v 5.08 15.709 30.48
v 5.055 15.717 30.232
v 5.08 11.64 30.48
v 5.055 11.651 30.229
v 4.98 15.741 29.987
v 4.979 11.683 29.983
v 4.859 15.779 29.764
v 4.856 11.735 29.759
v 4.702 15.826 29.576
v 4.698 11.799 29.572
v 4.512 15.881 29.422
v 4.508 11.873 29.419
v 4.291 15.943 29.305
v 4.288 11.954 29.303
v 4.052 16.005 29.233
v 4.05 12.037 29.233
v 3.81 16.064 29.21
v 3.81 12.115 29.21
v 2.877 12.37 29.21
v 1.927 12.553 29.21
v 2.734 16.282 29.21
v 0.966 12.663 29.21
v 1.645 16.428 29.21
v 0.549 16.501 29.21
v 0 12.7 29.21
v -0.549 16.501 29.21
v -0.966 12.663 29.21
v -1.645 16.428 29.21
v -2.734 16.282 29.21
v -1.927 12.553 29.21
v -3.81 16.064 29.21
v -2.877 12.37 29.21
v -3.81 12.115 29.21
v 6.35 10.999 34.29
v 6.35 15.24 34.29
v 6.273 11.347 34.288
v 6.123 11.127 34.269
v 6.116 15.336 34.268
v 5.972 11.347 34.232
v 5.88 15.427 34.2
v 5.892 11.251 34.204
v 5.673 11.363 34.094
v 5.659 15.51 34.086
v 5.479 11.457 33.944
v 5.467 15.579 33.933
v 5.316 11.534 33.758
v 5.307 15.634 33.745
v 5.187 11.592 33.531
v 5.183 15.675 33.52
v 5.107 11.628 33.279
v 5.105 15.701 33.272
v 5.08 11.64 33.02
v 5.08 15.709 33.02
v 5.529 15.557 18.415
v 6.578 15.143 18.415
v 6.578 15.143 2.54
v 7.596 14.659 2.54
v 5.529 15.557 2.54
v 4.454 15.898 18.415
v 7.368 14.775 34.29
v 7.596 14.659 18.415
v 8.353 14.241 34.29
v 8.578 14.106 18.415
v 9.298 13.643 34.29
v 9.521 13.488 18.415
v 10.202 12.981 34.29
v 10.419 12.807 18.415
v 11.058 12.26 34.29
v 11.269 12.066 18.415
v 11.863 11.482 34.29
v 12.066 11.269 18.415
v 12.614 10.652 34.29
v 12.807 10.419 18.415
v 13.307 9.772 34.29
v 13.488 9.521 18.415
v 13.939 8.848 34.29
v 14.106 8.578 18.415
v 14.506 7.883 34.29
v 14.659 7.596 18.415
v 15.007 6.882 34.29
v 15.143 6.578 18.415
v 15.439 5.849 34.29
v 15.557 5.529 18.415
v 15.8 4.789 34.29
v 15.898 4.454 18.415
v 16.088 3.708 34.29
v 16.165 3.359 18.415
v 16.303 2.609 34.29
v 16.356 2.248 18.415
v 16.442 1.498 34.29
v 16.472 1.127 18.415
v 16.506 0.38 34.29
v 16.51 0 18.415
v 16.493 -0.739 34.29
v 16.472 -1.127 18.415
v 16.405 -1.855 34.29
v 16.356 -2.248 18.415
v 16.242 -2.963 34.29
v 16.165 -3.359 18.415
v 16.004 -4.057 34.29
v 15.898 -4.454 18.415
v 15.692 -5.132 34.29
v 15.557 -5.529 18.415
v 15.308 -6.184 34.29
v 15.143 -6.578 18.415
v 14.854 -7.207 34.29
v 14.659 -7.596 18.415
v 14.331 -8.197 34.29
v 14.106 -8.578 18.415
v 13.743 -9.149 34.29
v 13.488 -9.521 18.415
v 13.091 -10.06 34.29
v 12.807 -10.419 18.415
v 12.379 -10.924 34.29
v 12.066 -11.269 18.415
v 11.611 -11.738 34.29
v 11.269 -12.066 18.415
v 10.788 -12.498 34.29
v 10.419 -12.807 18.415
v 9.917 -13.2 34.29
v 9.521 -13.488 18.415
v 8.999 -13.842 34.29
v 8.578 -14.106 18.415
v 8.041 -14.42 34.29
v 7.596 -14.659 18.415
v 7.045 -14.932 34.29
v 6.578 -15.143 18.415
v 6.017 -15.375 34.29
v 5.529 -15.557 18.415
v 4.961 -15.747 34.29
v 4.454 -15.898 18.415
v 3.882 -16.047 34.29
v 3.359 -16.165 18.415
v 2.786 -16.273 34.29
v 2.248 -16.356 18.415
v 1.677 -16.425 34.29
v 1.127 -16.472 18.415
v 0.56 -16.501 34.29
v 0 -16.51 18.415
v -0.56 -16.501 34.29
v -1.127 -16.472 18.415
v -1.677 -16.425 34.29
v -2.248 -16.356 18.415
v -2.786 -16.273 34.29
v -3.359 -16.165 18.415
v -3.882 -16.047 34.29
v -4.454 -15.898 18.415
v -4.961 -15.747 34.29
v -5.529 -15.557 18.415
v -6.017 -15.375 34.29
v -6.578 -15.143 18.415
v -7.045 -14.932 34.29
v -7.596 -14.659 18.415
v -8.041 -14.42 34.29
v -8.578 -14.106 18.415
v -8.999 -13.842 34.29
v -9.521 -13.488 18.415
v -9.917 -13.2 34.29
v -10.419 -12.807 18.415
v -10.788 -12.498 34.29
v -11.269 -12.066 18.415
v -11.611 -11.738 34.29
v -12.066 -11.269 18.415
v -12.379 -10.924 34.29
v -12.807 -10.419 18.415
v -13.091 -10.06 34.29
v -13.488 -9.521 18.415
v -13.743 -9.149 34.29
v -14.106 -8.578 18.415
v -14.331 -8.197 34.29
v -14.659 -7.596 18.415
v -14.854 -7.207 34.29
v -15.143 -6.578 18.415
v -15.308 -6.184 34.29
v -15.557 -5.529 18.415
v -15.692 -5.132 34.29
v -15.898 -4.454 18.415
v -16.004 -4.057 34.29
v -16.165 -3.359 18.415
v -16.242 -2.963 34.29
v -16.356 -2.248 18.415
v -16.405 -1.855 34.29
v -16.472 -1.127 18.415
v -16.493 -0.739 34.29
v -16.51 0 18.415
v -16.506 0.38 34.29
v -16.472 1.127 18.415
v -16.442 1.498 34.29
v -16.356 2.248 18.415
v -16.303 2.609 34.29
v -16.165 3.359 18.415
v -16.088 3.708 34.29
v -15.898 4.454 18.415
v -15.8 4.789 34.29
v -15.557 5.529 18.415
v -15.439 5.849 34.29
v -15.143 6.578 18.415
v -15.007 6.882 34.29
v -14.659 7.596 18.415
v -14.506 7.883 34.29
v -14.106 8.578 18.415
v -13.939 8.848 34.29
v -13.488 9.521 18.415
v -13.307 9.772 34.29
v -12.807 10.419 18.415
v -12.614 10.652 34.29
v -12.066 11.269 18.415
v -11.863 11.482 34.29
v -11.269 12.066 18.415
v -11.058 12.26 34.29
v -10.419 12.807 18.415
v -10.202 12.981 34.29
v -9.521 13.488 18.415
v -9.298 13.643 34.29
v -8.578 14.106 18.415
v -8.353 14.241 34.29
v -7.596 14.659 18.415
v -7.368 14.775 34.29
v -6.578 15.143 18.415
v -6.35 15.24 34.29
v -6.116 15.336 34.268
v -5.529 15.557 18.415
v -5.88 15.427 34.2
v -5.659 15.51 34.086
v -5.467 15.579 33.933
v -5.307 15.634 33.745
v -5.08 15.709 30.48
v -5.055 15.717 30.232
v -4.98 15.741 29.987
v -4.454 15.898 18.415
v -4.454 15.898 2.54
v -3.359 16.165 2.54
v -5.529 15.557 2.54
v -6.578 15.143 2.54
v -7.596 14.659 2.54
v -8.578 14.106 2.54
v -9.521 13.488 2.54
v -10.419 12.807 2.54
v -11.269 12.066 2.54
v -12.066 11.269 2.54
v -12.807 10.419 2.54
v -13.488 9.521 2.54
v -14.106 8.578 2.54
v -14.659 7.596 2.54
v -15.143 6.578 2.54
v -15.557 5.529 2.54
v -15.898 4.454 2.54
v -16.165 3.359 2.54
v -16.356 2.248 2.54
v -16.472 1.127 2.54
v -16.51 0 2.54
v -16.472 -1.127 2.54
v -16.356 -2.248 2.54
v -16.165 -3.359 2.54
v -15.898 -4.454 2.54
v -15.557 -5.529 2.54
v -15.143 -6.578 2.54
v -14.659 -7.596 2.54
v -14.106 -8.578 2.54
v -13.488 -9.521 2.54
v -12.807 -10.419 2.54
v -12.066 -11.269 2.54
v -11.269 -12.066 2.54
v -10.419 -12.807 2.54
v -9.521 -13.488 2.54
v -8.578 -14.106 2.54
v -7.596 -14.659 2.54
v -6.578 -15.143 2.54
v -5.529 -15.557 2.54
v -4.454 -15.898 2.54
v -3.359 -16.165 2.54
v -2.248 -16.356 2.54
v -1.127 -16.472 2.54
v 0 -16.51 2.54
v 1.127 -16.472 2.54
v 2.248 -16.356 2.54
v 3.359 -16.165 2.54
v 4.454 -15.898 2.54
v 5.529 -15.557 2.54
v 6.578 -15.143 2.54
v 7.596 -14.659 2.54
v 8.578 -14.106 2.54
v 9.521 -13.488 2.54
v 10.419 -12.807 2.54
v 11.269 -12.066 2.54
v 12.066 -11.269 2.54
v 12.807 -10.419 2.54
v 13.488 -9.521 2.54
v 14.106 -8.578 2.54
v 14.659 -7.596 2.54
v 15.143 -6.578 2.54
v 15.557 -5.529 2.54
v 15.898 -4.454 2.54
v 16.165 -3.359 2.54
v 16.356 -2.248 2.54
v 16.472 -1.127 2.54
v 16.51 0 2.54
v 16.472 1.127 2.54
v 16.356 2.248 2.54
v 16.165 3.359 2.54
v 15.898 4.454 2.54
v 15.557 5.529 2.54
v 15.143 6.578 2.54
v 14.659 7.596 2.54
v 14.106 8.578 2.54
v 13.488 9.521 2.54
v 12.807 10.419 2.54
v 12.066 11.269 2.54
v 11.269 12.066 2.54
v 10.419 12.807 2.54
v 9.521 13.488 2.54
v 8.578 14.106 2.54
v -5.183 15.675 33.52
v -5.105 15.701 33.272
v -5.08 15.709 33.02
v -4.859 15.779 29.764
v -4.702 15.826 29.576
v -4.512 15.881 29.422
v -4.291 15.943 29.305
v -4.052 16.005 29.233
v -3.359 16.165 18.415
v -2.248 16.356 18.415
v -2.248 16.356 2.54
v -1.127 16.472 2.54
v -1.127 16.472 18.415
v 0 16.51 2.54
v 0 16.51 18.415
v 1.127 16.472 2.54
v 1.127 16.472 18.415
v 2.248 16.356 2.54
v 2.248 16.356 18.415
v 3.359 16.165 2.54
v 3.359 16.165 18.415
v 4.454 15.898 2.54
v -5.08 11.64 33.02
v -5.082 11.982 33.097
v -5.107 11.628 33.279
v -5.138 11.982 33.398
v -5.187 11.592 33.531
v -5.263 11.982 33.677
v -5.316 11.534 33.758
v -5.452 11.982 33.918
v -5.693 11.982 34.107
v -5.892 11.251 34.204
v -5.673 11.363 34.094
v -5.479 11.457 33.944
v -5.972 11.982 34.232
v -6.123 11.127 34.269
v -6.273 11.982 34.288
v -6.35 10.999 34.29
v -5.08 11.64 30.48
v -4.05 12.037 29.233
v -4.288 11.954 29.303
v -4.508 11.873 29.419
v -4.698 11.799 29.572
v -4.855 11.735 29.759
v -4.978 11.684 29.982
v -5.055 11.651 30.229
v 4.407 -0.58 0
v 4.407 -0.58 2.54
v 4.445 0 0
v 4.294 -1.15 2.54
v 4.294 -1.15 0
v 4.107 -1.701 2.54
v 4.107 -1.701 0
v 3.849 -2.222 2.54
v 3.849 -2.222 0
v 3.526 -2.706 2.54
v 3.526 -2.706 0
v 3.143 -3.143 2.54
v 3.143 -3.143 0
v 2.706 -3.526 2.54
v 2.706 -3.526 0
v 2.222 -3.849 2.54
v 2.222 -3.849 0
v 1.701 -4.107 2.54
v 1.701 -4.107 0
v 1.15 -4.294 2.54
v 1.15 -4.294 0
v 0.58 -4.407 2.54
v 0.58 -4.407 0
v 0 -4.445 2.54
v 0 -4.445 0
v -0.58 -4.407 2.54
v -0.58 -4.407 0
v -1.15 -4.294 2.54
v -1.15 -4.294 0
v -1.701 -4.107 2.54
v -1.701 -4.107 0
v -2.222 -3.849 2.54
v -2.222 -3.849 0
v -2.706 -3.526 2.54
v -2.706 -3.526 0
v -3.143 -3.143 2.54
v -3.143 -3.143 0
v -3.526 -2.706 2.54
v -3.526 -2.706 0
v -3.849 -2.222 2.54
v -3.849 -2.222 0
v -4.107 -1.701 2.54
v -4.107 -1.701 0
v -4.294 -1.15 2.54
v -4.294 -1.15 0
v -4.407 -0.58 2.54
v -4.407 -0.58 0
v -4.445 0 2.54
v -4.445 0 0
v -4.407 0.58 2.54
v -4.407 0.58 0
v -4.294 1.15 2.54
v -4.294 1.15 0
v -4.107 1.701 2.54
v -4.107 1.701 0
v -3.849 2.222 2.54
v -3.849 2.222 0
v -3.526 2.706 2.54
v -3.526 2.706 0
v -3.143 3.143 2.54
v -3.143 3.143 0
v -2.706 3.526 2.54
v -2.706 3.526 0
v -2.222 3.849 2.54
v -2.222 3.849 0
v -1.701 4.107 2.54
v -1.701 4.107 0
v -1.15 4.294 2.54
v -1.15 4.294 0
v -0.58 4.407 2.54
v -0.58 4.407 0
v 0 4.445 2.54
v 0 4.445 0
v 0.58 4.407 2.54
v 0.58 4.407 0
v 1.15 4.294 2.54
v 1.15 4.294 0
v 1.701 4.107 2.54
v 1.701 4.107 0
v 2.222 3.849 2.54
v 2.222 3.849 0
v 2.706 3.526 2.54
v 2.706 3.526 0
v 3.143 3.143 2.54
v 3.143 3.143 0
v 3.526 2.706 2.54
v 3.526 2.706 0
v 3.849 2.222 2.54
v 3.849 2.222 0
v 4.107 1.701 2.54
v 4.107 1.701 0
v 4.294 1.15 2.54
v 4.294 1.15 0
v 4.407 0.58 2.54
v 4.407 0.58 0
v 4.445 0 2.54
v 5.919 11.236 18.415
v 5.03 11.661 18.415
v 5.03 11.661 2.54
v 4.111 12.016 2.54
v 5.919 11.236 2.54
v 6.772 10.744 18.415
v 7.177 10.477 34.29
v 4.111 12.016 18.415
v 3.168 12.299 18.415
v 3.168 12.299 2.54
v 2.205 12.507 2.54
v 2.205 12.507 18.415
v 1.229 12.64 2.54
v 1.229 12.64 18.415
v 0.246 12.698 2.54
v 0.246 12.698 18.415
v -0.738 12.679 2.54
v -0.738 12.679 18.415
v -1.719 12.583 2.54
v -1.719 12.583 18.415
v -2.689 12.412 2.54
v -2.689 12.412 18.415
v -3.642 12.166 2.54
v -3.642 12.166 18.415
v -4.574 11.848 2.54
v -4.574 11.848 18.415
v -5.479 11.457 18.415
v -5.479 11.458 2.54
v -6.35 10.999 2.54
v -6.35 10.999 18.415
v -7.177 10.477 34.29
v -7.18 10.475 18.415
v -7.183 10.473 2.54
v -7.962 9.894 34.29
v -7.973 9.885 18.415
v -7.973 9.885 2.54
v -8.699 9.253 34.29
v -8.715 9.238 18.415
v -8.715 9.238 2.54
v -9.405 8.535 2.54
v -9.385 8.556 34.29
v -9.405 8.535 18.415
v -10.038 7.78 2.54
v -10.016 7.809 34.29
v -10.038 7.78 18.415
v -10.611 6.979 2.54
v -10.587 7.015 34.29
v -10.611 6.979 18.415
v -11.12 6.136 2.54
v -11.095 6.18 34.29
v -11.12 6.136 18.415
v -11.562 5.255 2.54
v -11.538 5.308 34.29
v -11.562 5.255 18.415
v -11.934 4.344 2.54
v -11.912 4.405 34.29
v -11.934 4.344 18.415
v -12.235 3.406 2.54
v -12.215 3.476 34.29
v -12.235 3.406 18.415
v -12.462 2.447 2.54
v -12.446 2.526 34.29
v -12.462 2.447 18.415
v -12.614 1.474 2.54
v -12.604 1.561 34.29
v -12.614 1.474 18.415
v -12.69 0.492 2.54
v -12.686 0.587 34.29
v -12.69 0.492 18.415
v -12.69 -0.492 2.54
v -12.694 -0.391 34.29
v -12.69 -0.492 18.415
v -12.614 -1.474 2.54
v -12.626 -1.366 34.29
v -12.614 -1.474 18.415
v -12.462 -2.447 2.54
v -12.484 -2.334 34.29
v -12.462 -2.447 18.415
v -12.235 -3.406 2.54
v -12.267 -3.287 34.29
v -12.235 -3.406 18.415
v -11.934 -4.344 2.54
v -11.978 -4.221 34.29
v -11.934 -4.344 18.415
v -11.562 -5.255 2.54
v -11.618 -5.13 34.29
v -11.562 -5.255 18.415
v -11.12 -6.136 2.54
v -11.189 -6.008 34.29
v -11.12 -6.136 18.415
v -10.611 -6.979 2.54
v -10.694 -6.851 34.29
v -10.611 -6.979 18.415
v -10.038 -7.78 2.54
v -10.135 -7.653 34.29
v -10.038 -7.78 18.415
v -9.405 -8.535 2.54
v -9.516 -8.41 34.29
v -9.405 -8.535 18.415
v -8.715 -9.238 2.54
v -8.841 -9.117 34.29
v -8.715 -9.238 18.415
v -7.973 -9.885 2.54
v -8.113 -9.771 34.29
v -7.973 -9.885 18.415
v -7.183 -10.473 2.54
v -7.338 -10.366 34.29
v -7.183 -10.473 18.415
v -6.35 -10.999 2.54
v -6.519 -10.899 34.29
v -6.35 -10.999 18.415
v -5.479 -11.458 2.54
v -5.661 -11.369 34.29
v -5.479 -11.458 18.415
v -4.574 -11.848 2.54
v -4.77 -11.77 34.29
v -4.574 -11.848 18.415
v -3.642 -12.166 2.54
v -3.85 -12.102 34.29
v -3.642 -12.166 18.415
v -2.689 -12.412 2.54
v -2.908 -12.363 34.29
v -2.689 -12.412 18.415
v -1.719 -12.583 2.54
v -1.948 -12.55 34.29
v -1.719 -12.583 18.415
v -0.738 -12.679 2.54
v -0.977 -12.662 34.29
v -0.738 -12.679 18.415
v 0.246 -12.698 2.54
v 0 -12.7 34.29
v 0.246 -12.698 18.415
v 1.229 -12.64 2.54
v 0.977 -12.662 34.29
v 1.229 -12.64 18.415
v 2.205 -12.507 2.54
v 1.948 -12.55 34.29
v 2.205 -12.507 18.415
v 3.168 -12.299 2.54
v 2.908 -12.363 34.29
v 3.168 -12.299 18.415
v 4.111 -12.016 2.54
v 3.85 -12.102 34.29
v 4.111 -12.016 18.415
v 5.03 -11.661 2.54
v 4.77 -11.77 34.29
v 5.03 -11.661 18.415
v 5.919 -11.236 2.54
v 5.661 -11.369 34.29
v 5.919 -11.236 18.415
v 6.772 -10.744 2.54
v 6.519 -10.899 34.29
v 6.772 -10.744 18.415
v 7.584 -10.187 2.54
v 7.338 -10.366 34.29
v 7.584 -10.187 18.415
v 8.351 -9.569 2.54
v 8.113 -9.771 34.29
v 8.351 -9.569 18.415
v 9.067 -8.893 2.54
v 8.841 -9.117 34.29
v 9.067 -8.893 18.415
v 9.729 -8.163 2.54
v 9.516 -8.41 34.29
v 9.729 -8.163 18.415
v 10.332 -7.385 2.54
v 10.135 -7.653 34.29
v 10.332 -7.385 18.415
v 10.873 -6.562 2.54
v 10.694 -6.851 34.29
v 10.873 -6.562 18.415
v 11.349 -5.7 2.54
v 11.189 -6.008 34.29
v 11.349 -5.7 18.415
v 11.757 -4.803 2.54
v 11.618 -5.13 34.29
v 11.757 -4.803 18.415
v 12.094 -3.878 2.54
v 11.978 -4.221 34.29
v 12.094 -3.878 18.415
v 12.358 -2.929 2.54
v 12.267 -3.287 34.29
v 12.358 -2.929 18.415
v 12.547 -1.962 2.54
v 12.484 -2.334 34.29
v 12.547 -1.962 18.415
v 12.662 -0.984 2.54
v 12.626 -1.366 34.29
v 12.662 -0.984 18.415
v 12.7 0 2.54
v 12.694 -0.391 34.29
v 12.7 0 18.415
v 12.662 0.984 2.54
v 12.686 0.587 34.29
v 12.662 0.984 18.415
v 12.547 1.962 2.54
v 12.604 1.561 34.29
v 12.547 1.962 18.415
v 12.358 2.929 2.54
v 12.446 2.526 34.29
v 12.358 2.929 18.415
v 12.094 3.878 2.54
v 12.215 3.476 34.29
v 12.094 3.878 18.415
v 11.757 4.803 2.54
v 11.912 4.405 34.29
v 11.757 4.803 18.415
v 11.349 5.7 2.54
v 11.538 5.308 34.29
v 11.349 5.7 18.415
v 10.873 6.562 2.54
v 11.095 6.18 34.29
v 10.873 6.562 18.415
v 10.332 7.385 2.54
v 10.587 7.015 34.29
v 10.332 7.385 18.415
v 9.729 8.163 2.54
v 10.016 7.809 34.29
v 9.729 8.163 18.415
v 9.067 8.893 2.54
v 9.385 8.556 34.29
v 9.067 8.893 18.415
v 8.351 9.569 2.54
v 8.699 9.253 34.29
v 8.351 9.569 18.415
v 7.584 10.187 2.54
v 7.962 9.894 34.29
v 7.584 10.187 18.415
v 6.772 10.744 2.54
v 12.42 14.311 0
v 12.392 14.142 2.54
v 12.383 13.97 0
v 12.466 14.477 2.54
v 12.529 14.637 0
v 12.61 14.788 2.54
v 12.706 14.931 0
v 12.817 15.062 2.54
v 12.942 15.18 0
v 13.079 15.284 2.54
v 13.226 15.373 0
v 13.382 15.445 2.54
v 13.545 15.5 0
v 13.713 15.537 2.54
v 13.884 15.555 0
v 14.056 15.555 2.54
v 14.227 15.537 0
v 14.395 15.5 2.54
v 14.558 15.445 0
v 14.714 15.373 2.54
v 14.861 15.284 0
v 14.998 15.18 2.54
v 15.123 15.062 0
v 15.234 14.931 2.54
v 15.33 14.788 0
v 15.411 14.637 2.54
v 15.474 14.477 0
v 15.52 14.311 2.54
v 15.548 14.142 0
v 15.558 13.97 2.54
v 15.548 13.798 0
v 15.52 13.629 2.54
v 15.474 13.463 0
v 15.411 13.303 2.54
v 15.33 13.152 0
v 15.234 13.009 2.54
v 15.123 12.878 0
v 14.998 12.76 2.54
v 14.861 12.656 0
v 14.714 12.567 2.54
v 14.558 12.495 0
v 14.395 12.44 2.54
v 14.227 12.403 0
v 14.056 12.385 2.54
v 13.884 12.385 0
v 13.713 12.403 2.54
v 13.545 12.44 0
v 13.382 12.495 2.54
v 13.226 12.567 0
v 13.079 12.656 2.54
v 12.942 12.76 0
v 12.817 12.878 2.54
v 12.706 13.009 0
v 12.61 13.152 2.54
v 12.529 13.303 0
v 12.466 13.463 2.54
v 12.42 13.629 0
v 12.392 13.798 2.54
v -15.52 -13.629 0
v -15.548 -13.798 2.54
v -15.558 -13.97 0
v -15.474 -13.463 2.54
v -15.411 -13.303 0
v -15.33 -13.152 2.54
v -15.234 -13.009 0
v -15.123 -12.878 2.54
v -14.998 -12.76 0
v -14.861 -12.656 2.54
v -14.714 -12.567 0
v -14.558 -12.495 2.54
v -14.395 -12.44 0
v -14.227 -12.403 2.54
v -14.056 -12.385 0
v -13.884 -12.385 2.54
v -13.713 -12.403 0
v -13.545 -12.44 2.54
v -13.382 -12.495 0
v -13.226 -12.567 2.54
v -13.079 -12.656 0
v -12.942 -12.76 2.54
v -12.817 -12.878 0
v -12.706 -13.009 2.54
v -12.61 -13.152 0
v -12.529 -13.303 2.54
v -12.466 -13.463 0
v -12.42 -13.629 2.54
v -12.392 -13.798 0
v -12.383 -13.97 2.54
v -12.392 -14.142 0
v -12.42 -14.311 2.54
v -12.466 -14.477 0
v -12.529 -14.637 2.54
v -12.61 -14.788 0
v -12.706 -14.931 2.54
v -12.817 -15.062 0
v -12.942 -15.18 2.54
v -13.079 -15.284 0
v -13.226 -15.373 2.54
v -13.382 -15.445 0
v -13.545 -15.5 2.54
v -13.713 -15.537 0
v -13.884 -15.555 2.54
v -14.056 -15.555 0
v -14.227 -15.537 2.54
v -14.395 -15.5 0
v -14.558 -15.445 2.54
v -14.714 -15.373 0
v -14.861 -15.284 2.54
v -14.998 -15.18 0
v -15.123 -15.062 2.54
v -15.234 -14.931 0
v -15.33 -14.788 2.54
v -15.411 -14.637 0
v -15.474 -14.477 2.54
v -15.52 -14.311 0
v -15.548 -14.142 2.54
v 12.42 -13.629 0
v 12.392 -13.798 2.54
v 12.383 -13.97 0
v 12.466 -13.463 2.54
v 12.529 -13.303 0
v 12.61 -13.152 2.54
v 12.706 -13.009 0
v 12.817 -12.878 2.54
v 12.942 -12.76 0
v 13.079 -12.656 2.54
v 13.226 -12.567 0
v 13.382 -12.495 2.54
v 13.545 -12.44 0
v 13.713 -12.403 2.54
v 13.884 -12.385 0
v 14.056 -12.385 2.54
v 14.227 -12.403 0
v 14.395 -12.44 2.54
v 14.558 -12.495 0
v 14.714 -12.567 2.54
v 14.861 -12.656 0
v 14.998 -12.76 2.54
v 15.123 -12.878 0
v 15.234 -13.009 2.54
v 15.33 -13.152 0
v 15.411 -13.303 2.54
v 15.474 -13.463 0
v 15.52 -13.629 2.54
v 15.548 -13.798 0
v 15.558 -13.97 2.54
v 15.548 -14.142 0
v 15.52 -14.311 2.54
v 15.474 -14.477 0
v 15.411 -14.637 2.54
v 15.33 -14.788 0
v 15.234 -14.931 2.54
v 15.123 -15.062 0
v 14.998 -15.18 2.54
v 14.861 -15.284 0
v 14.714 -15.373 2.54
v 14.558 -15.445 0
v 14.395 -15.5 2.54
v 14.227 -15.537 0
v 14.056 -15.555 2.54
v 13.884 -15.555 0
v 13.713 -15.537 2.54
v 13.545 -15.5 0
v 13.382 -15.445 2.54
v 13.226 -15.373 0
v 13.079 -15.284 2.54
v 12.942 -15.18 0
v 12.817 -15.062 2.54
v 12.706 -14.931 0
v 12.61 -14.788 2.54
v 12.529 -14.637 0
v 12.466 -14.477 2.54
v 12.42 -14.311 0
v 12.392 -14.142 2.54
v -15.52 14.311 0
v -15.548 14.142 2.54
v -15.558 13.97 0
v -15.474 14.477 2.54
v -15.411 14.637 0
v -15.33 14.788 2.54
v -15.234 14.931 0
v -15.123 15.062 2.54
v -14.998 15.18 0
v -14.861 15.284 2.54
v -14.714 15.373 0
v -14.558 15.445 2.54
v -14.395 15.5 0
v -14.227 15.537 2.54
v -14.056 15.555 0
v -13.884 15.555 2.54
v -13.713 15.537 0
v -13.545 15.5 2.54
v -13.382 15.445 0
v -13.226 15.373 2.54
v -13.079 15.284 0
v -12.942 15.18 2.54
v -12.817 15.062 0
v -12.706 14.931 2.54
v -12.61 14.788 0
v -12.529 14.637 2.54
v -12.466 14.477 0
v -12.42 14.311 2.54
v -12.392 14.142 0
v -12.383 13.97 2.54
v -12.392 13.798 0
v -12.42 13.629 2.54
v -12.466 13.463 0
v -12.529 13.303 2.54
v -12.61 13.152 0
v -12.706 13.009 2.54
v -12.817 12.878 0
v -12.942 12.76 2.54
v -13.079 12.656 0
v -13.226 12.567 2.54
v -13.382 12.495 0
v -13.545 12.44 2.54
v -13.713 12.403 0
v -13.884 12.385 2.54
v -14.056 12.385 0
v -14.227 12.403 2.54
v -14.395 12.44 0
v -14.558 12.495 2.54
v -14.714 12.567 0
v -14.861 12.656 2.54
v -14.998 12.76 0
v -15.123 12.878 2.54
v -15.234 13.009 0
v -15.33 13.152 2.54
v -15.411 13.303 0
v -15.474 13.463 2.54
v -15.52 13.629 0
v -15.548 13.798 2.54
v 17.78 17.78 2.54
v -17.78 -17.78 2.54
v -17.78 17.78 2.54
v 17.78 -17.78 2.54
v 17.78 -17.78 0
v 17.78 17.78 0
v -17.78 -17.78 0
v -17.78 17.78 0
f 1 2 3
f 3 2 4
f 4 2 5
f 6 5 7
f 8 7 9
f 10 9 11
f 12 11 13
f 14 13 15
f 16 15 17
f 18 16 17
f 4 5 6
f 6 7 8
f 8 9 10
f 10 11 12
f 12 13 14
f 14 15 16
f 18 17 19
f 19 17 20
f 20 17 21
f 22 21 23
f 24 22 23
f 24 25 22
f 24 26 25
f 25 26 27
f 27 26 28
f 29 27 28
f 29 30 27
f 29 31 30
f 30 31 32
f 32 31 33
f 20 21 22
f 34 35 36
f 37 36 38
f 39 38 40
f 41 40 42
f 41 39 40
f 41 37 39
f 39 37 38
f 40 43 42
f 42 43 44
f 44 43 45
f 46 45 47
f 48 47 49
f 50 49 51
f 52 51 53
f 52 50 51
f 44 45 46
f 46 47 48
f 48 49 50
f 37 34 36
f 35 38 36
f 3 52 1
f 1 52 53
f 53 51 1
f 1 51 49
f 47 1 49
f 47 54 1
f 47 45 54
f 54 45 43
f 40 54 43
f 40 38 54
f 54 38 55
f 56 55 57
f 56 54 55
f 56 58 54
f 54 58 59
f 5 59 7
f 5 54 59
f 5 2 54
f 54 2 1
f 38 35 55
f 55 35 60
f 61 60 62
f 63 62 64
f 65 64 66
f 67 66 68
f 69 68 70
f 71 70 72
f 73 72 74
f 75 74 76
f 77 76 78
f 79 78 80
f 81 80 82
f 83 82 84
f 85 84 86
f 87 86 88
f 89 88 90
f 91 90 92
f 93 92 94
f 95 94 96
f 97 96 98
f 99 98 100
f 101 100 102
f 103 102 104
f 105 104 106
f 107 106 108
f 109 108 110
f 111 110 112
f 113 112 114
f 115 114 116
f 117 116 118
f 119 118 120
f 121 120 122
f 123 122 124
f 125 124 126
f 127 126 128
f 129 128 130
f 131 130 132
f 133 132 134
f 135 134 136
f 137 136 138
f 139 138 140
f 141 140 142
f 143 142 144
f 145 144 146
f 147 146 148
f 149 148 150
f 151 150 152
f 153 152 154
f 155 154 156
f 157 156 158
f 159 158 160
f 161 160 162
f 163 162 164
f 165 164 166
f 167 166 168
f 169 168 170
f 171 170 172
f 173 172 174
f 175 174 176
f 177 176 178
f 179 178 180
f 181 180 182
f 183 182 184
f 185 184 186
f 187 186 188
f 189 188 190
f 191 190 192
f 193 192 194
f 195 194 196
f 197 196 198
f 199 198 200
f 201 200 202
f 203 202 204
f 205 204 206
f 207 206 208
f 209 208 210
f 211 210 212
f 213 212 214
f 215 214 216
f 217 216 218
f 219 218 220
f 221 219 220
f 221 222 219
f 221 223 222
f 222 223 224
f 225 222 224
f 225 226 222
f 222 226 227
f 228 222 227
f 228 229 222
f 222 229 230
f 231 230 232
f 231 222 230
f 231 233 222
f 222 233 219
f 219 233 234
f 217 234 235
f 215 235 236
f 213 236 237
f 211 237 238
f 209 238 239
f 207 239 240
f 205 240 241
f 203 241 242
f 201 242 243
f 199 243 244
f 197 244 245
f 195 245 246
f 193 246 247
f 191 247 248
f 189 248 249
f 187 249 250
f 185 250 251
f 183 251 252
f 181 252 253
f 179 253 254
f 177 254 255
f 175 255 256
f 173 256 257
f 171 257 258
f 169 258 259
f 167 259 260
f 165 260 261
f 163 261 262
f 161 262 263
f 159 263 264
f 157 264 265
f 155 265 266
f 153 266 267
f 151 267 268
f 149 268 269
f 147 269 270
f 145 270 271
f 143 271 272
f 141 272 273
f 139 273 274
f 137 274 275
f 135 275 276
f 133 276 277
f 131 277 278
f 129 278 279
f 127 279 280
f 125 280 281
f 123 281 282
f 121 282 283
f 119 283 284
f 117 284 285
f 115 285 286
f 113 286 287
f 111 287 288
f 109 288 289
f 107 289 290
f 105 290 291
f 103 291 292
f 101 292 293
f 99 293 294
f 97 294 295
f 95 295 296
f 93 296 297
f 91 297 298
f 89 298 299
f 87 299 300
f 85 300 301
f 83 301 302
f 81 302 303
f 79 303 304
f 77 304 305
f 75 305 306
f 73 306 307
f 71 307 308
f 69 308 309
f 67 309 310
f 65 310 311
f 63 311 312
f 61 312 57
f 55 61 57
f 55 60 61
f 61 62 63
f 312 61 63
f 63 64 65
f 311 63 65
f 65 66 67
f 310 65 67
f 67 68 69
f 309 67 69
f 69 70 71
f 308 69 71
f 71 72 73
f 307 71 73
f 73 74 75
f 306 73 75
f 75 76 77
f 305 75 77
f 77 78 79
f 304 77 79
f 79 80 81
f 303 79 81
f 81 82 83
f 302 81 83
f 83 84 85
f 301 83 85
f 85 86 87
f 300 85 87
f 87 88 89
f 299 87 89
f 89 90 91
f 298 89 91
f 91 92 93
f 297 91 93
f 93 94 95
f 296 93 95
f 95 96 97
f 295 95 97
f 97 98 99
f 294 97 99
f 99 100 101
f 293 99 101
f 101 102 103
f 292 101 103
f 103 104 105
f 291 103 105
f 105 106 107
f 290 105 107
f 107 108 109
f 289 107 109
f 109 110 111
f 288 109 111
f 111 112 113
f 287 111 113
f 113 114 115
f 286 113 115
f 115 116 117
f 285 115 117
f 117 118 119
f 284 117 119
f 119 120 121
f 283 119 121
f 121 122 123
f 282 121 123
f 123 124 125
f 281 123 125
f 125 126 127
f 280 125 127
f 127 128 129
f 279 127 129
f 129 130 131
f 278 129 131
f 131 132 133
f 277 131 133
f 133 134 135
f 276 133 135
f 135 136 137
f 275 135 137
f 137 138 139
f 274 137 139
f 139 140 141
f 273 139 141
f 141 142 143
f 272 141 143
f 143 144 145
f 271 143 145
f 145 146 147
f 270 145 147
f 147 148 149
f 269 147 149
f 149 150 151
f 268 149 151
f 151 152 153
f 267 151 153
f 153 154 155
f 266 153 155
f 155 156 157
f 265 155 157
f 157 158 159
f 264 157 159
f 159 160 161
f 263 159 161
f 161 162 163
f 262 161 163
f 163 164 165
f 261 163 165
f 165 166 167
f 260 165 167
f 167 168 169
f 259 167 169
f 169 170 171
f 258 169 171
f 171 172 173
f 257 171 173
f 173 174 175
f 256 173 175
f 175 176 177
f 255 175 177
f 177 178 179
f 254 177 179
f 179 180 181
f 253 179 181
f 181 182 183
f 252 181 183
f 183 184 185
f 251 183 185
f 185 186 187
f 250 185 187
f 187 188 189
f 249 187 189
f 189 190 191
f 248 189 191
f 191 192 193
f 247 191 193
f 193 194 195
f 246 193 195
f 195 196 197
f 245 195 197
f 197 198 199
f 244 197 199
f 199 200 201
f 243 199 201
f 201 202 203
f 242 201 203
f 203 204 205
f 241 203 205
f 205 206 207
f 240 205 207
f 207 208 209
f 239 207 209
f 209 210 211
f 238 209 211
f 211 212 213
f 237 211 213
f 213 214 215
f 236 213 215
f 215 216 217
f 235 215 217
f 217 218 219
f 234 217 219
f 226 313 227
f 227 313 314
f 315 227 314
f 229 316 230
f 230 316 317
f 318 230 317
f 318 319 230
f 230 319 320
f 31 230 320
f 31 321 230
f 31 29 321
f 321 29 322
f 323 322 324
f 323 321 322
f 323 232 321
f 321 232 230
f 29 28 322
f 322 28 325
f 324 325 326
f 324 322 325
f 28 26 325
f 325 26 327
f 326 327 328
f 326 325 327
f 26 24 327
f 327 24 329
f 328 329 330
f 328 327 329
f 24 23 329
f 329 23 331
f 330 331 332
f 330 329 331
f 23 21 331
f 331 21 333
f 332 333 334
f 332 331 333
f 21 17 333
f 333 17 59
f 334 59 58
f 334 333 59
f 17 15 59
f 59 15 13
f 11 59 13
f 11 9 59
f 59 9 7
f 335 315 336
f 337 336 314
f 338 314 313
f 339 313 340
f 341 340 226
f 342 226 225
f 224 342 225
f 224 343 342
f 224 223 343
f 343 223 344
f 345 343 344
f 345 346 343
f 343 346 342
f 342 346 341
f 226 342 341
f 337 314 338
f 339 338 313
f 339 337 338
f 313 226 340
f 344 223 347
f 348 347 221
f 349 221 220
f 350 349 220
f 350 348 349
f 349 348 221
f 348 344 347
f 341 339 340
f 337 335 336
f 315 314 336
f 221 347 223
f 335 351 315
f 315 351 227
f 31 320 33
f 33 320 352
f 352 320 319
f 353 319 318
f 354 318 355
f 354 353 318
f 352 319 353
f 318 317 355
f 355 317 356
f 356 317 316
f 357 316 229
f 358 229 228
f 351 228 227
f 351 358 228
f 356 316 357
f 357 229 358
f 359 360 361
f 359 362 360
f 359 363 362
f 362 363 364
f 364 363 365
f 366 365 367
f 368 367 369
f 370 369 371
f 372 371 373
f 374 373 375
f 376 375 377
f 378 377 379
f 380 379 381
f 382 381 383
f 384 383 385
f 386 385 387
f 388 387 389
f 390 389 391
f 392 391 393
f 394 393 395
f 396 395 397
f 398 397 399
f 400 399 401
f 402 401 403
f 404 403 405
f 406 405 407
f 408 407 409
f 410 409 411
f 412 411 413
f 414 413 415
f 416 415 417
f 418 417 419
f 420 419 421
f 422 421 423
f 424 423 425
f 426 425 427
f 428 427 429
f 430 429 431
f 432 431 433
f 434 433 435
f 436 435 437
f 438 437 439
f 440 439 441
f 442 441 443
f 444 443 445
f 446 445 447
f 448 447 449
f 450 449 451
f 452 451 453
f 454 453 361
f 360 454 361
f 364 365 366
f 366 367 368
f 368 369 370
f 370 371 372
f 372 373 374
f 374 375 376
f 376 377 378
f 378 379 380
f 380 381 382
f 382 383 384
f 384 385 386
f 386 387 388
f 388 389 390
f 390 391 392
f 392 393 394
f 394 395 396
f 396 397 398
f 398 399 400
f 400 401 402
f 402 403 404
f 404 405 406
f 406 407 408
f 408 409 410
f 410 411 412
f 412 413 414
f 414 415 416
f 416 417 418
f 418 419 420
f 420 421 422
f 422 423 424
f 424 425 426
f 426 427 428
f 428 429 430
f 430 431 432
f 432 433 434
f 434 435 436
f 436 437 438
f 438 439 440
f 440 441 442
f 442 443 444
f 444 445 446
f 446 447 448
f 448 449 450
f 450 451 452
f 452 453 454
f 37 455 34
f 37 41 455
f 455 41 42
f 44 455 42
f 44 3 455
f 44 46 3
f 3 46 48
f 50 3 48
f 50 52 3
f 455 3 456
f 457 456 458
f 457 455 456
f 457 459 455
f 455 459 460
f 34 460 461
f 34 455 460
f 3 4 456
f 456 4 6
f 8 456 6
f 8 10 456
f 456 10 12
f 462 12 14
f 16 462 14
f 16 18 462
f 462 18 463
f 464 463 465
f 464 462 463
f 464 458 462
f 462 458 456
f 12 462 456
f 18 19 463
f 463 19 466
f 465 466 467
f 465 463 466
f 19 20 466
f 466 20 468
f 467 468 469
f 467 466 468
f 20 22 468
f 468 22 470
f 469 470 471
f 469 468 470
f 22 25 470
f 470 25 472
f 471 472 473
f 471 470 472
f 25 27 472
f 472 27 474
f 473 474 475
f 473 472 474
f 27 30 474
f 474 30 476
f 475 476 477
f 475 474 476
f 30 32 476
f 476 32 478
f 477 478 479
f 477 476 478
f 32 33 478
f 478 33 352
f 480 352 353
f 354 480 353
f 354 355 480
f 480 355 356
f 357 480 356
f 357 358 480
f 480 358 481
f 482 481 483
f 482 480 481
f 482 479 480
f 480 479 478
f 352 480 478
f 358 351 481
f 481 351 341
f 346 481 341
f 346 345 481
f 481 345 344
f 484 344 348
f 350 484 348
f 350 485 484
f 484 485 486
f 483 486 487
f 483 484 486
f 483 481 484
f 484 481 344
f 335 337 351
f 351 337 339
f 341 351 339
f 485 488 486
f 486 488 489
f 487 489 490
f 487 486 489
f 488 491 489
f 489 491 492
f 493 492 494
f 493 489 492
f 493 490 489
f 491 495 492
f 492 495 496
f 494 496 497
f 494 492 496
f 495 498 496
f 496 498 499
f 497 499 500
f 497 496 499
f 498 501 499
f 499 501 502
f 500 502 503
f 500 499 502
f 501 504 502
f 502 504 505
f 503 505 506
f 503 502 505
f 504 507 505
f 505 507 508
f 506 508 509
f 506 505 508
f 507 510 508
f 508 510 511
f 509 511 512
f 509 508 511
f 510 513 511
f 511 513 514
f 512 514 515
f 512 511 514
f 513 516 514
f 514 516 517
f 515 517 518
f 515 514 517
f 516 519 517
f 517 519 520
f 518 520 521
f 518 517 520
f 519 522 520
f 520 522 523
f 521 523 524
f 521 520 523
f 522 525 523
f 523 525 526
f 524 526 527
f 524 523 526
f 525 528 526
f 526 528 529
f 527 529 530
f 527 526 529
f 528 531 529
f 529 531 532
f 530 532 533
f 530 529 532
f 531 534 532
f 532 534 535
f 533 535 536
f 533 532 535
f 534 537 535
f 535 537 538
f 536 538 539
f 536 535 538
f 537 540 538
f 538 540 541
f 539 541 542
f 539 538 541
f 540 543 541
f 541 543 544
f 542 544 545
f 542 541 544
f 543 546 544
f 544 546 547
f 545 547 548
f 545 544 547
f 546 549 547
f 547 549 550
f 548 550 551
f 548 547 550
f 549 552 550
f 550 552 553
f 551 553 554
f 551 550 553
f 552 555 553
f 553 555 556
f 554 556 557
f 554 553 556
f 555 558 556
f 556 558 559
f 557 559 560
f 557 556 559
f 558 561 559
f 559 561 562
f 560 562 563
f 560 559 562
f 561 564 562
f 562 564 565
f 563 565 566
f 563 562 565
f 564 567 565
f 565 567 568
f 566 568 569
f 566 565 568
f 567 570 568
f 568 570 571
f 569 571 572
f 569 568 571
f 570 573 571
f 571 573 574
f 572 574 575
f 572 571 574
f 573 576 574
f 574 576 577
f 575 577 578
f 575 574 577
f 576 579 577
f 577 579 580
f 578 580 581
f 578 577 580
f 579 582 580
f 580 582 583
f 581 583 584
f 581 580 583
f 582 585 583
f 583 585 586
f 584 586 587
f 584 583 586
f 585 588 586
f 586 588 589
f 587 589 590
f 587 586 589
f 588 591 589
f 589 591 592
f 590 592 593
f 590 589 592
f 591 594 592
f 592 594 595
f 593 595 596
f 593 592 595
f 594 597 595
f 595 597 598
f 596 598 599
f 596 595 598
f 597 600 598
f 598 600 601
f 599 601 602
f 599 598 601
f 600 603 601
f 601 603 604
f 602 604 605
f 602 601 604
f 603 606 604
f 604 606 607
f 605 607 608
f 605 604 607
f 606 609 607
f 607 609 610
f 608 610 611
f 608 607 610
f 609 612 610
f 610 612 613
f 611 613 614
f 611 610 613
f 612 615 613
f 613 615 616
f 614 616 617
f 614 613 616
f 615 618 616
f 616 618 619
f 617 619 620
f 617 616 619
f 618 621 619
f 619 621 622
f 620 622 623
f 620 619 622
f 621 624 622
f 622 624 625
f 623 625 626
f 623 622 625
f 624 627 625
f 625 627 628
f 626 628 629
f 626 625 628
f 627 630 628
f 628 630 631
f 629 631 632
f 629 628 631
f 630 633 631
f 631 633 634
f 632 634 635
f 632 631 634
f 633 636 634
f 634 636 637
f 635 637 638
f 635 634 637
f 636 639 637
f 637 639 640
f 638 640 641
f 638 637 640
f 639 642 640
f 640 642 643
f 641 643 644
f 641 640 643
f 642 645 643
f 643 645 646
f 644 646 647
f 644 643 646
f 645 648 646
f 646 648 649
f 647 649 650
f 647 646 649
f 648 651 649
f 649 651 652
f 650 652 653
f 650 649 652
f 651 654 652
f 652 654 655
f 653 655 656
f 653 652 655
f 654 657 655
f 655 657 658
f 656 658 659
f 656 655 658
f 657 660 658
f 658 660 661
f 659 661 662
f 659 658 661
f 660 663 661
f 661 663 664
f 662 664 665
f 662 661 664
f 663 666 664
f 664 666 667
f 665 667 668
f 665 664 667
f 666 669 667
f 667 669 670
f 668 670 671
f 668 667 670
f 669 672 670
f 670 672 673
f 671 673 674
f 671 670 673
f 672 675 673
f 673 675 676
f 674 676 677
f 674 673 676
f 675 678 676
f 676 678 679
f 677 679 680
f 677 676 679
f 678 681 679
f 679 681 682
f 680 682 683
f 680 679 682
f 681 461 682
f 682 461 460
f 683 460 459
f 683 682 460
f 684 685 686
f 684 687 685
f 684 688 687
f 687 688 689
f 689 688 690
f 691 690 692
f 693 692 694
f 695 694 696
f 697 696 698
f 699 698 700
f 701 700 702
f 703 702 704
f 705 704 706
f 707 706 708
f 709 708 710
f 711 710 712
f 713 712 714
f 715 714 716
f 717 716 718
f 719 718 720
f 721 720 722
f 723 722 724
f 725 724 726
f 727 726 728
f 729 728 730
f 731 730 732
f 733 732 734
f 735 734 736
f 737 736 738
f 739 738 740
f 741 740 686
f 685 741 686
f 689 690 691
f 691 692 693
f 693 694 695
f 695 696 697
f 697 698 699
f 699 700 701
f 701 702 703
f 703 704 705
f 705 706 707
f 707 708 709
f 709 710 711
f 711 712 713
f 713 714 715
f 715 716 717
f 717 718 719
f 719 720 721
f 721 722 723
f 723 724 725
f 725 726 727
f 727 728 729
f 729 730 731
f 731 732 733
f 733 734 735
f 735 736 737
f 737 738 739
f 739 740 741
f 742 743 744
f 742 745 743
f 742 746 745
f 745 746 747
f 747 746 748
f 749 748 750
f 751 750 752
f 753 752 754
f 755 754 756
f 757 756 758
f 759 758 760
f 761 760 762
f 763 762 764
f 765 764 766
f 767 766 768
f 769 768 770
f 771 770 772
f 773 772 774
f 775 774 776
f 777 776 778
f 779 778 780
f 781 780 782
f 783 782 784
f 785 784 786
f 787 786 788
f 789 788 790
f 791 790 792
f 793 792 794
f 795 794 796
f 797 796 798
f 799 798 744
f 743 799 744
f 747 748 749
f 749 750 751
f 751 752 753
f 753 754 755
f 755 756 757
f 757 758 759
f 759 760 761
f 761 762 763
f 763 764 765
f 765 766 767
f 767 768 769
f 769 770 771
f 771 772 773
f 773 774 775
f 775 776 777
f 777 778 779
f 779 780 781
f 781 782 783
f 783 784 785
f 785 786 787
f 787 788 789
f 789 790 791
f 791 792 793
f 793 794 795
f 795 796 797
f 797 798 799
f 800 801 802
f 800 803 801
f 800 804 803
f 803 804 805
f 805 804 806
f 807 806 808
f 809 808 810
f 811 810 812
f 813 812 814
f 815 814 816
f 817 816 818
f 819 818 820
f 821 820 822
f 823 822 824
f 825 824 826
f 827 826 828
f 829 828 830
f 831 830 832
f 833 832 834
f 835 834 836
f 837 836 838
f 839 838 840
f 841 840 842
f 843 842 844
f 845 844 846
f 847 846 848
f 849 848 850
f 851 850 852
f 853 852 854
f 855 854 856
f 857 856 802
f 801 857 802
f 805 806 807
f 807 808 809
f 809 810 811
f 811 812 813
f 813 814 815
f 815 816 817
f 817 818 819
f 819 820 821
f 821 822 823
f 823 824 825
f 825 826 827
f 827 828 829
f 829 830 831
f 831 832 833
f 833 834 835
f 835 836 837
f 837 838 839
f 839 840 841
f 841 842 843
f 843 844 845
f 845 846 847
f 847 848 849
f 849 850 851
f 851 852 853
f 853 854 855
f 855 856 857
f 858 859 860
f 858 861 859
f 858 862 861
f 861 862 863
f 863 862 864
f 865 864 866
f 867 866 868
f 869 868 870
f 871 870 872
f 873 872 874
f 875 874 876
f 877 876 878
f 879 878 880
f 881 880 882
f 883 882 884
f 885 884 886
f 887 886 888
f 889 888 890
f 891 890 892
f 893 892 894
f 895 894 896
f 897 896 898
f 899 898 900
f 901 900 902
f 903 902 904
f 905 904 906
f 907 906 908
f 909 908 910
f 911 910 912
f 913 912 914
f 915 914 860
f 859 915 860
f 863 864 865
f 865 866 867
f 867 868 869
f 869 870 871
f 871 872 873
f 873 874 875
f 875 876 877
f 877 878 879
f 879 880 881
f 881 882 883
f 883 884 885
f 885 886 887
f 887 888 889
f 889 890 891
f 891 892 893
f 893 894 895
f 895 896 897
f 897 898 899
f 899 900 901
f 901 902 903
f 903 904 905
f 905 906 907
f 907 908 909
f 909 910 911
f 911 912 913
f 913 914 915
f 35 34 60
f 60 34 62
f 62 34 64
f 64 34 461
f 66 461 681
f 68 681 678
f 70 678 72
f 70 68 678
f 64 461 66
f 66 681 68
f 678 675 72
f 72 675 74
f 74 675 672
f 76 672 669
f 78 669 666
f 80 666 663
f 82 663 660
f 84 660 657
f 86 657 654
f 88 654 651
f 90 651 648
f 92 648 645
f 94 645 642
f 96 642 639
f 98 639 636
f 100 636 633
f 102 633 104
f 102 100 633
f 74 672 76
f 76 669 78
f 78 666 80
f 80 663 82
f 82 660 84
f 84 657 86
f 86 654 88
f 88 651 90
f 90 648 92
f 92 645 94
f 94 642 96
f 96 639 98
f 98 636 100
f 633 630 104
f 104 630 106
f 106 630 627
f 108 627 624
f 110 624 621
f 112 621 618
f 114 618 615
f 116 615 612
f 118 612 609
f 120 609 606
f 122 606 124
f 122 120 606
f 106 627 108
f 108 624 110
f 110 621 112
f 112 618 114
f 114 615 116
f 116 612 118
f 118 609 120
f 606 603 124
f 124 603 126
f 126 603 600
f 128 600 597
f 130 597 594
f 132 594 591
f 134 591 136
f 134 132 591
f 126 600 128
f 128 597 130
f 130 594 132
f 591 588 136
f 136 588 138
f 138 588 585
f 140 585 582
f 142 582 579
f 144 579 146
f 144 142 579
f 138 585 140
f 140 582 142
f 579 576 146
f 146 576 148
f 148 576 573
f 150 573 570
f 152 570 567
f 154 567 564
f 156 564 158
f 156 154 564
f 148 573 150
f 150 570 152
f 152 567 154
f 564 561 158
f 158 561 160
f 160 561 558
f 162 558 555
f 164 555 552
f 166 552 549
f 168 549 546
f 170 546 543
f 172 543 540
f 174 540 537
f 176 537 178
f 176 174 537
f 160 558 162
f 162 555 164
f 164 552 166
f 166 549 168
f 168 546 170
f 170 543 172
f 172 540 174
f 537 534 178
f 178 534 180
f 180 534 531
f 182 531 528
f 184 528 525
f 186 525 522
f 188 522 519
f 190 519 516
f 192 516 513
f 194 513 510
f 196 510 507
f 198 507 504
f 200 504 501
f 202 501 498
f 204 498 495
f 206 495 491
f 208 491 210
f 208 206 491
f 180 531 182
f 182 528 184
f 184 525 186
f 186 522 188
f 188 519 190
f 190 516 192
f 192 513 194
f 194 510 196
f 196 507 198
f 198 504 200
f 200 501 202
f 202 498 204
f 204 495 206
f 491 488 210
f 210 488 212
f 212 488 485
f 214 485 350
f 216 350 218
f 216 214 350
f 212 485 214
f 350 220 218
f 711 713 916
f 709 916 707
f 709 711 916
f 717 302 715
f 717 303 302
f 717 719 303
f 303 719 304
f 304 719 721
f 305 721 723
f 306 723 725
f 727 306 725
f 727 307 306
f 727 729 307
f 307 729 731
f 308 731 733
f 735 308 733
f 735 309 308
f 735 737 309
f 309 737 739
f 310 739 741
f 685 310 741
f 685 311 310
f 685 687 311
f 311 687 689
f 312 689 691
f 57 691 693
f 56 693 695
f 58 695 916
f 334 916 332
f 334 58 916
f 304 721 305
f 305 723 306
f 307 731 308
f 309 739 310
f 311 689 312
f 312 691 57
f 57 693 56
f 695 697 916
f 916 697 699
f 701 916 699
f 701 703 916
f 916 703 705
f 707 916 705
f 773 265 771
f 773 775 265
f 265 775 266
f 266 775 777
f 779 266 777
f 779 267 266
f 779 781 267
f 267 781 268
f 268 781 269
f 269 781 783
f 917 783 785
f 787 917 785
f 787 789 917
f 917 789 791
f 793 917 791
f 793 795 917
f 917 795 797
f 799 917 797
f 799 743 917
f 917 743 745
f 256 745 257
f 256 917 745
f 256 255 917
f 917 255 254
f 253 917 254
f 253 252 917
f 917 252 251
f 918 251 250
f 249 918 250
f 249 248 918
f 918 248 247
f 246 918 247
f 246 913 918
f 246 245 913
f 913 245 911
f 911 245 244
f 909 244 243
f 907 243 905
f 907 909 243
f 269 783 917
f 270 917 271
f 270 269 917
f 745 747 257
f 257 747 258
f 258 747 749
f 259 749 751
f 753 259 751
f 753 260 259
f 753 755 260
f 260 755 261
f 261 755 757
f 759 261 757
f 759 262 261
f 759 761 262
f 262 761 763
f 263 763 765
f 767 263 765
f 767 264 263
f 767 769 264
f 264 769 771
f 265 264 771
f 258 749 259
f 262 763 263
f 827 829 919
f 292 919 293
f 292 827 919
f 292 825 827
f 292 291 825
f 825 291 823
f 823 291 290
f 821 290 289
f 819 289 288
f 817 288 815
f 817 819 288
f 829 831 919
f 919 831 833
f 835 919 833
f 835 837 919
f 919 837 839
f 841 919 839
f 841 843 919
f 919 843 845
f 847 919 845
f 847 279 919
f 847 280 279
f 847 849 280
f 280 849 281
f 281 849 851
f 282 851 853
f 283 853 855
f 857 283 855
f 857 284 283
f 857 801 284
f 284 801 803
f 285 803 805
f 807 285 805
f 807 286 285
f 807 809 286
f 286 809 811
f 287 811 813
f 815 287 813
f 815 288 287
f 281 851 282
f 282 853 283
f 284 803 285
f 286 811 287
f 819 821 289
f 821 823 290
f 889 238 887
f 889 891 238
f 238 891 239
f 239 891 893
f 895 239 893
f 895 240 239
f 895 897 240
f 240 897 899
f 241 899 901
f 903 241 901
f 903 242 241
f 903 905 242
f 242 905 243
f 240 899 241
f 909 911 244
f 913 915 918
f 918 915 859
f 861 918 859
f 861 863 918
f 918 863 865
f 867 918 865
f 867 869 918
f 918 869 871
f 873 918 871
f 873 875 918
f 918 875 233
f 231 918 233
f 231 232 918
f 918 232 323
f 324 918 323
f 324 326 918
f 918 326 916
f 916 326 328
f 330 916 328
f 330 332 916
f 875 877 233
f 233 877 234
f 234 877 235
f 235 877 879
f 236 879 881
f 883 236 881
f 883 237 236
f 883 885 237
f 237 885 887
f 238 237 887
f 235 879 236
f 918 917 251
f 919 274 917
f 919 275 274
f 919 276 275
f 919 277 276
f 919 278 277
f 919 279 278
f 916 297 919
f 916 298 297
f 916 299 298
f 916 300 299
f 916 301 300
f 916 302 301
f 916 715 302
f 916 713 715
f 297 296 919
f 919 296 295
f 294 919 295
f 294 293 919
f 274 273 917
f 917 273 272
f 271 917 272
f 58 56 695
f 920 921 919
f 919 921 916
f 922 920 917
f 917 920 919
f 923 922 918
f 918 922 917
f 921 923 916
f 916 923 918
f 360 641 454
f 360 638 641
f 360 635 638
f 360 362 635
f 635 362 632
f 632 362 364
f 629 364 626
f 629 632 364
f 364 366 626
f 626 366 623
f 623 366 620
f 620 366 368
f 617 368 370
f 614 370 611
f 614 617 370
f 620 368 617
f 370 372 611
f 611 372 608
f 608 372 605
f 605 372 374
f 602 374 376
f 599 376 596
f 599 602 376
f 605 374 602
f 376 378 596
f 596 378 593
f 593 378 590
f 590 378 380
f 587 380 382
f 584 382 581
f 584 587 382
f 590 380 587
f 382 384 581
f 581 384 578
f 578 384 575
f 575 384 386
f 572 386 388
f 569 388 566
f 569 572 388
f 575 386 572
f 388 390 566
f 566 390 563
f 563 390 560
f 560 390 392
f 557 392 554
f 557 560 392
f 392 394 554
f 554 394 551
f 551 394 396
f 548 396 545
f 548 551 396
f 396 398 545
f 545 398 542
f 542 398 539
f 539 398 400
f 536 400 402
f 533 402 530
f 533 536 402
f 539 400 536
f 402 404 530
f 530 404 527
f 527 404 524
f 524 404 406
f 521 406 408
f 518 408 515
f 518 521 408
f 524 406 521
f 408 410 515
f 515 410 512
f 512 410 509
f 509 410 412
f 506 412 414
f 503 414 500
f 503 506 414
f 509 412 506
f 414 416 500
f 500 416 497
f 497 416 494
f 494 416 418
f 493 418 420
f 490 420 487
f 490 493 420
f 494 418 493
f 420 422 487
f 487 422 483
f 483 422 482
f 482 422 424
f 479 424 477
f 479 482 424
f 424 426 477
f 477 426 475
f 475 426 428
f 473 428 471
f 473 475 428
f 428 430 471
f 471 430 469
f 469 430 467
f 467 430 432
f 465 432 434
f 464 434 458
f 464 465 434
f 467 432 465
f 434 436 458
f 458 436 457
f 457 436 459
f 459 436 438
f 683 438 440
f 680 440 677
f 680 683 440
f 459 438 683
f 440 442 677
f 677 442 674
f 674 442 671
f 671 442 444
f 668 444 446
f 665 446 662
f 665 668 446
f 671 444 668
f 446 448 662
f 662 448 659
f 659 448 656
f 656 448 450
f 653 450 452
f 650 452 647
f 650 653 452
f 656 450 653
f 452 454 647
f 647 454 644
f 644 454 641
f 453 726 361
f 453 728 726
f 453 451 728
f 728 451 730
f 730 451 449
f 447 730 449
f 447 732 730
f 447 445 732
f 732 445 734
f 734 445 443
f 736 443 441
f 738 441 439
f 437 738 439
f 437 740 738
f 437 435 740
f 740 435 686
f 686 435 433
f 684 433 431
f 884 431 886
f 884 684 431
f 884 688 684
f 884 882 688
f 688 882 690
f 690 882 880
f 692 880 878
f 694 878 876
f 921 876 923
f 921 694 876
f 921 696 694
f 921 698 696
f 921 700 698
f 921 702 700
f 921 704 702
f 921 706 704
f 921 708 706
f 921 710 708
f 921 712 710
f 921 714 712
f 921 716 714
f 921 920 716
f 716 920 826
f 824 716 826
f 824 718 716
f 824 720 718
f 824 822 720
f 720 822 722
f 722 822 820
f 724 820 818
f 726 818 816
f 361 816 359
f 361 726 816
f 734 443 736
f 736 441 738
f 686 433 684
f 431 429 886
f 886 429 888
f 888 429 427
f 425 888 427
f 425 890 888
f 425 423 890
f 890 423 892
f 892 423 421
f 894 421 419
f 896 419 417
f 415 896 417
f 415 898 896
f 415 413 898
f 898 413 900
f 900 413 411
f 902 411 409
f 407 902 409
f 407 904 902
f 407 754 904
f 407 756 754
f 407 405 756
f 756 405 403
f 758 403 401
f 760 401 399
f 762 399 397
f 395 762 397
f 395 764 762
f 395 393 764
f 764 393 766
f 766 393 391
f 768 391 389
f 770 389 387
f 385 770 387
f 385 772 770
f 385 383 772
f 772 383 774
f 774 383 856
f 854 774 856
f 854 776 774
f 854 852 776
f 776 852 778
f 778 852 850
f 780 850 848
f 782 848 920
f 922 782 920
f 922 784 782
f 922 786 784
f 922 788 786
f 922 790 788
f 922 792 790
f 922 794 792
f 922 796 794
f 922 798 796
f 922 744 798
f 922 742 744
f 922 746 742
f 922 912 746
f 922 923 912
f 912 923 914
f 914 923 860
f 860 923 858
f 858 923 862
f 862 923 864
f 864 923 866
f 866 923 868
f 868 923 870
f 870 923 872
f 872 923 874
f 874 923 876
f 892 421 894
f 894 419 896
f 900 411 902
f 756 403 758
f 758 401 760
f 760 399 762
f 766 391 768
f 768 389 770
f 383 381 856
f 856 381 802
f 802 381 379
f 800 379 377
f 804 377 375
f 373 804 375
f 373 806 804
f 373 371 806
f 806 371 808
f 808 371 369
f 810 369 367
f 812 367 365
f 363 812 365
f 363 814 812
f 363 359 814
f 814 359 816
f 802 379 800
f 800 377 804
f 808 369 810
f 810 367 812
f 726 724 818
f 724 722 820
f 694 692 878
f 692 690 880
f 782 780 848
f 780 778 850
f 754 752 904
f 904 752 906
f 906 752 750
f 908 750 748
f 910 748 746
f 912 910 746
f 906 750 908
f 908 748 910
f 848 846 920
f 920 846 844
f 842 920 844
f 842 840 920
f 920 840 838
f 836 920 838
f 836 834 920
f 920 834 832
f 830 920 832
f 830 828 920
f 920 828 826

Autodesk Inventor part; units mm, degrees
ref_plane "YZ Plane" through (0, 0, 0) normal (1, 0, 0) x (0, 1, 0)
ref_plane "XY Plane" through (0, 0, 0) normal (0, 0, 1) x (1, 0, 0)
sketch "Sketch1" plane through (0, 0, 0) normal (0, 0, 1) x (1, 0, 0)
  line L0 (17.78, 17.78) -> (-17.78, 17.78)
  line L1 (-17.78, 17.78) -> (-17.78, -17.78)
  line L2 (-17.78, -17.78) -> (17.78, -17.78)
  line L3 (17.78, -17.78) -> (17.78, 17.78)
  point P0 (0, 0)
  dimension "d0" = 35.56
  dimension "d1" = 35.56
  dimension "d2" = 17.78
  dimension "d3" = 17.78
extrude "Extrusion1" add sketch "Sketch1" along normal blind 2.54
sketch "Sketch2" plane through (0, 0, 2.54) normal (0, 0, 1) x (1, 0, 0)
  circle A0 centre (0, 0) radius 12.7
  circle A1 centre (0, 0) radius 16.51
  dimension "d6" = 25.4
  dimension "d7" = 3.81
extrude "Extrusion2" add sketch "Sketch2" along normal blind 31.75
sketch "Sketch3" plane through (0, 0, 2.54) normal (0, 0, 1) x (1, 0, 0)
  line L0 (17.78, 17.78) -> (-17.78, 17.78) projected
  line L1 (-17.78, 17.78) -> (-17.78, -17.78) projected
  line L2 (17.78, -17.78) -> (17.78, 17.78) projected
  line L3 (-17.78, -17.78) -> (17.78, -17.78) projected
  point P0 (0, 0)
  point P1 (-13.97, -13.97)
  point P2 (13.97, -13.97)
  point P3 (13.97, 13.97)
  point P4 (-13.97, 13.97)
  dimension "d10" = 3.81
  dimension "d11" = 3.81
  dimension "d12" = 3.81
  dimension "d13" = 3.81
  dimension "d14" = 3.81
  dimension "d15" = 3.81
  dimension "d16" = 3.81
  dimension "d17" = 3.81
hole "Hole1" at (-13.97, -13.97, 2.54) at (13.97, -13.97, 2.54) at (13.97, 13.97, 2.54) at (-13.97, 13.97, 2.54) direction (0, 0, -1) diameter 3.175 depth 3.175 tip angle 118
ref_plane "Work Plane1" through (0, 16.51, 0) normal (0, 1, 0) x (-1, 0, 0)
sketch "Sketch4" plane through (0, 16.51, 0) normal (0, 1, 0) x (-1, 0, 0)
  line L0 (-12.7, 34.29) -> (12.7, 34.29) projected
  line L1 (5.08, 34.29) -> (-5.08, 34.29)
  line L2 (-5.08, 34.29) -> (-5.08, 29.21)
  line L3 (-5.08, 29.21) -> (5.08, 29.21)
  line L4 (5.08, 29.21) -> (5.08, 34.29)
  line L5 (0, -6.858) -> (0, 41.148) projected
  point P0 (0, 0)
  dimension "d26" = 5.08
  dimension "d27" = 10.16
  dimension "d28" = 5.08
extrude "Extrusion3" cut sketch "Sketch4" against normal blind 10.16
sketch "Sketch5" plane through (0, 0, 2.54) normal (0, 0, 1) x (1, 0, 0)
  circle A0 centre (0, 0) radius 4.445
  dimension "d31" = 8.89
extrude "Extrusion4" cut sketch "Sketch5" against normal through all
fillet "Fillet1" radius 1.27 4 edges at (-5.08, 13.6744, 29.21) (-5.08, 13.6744, 34.29) (5.08, 13.6744, 34.29) (5.08, 13.6744, 29.21)
properties part number "000114"
